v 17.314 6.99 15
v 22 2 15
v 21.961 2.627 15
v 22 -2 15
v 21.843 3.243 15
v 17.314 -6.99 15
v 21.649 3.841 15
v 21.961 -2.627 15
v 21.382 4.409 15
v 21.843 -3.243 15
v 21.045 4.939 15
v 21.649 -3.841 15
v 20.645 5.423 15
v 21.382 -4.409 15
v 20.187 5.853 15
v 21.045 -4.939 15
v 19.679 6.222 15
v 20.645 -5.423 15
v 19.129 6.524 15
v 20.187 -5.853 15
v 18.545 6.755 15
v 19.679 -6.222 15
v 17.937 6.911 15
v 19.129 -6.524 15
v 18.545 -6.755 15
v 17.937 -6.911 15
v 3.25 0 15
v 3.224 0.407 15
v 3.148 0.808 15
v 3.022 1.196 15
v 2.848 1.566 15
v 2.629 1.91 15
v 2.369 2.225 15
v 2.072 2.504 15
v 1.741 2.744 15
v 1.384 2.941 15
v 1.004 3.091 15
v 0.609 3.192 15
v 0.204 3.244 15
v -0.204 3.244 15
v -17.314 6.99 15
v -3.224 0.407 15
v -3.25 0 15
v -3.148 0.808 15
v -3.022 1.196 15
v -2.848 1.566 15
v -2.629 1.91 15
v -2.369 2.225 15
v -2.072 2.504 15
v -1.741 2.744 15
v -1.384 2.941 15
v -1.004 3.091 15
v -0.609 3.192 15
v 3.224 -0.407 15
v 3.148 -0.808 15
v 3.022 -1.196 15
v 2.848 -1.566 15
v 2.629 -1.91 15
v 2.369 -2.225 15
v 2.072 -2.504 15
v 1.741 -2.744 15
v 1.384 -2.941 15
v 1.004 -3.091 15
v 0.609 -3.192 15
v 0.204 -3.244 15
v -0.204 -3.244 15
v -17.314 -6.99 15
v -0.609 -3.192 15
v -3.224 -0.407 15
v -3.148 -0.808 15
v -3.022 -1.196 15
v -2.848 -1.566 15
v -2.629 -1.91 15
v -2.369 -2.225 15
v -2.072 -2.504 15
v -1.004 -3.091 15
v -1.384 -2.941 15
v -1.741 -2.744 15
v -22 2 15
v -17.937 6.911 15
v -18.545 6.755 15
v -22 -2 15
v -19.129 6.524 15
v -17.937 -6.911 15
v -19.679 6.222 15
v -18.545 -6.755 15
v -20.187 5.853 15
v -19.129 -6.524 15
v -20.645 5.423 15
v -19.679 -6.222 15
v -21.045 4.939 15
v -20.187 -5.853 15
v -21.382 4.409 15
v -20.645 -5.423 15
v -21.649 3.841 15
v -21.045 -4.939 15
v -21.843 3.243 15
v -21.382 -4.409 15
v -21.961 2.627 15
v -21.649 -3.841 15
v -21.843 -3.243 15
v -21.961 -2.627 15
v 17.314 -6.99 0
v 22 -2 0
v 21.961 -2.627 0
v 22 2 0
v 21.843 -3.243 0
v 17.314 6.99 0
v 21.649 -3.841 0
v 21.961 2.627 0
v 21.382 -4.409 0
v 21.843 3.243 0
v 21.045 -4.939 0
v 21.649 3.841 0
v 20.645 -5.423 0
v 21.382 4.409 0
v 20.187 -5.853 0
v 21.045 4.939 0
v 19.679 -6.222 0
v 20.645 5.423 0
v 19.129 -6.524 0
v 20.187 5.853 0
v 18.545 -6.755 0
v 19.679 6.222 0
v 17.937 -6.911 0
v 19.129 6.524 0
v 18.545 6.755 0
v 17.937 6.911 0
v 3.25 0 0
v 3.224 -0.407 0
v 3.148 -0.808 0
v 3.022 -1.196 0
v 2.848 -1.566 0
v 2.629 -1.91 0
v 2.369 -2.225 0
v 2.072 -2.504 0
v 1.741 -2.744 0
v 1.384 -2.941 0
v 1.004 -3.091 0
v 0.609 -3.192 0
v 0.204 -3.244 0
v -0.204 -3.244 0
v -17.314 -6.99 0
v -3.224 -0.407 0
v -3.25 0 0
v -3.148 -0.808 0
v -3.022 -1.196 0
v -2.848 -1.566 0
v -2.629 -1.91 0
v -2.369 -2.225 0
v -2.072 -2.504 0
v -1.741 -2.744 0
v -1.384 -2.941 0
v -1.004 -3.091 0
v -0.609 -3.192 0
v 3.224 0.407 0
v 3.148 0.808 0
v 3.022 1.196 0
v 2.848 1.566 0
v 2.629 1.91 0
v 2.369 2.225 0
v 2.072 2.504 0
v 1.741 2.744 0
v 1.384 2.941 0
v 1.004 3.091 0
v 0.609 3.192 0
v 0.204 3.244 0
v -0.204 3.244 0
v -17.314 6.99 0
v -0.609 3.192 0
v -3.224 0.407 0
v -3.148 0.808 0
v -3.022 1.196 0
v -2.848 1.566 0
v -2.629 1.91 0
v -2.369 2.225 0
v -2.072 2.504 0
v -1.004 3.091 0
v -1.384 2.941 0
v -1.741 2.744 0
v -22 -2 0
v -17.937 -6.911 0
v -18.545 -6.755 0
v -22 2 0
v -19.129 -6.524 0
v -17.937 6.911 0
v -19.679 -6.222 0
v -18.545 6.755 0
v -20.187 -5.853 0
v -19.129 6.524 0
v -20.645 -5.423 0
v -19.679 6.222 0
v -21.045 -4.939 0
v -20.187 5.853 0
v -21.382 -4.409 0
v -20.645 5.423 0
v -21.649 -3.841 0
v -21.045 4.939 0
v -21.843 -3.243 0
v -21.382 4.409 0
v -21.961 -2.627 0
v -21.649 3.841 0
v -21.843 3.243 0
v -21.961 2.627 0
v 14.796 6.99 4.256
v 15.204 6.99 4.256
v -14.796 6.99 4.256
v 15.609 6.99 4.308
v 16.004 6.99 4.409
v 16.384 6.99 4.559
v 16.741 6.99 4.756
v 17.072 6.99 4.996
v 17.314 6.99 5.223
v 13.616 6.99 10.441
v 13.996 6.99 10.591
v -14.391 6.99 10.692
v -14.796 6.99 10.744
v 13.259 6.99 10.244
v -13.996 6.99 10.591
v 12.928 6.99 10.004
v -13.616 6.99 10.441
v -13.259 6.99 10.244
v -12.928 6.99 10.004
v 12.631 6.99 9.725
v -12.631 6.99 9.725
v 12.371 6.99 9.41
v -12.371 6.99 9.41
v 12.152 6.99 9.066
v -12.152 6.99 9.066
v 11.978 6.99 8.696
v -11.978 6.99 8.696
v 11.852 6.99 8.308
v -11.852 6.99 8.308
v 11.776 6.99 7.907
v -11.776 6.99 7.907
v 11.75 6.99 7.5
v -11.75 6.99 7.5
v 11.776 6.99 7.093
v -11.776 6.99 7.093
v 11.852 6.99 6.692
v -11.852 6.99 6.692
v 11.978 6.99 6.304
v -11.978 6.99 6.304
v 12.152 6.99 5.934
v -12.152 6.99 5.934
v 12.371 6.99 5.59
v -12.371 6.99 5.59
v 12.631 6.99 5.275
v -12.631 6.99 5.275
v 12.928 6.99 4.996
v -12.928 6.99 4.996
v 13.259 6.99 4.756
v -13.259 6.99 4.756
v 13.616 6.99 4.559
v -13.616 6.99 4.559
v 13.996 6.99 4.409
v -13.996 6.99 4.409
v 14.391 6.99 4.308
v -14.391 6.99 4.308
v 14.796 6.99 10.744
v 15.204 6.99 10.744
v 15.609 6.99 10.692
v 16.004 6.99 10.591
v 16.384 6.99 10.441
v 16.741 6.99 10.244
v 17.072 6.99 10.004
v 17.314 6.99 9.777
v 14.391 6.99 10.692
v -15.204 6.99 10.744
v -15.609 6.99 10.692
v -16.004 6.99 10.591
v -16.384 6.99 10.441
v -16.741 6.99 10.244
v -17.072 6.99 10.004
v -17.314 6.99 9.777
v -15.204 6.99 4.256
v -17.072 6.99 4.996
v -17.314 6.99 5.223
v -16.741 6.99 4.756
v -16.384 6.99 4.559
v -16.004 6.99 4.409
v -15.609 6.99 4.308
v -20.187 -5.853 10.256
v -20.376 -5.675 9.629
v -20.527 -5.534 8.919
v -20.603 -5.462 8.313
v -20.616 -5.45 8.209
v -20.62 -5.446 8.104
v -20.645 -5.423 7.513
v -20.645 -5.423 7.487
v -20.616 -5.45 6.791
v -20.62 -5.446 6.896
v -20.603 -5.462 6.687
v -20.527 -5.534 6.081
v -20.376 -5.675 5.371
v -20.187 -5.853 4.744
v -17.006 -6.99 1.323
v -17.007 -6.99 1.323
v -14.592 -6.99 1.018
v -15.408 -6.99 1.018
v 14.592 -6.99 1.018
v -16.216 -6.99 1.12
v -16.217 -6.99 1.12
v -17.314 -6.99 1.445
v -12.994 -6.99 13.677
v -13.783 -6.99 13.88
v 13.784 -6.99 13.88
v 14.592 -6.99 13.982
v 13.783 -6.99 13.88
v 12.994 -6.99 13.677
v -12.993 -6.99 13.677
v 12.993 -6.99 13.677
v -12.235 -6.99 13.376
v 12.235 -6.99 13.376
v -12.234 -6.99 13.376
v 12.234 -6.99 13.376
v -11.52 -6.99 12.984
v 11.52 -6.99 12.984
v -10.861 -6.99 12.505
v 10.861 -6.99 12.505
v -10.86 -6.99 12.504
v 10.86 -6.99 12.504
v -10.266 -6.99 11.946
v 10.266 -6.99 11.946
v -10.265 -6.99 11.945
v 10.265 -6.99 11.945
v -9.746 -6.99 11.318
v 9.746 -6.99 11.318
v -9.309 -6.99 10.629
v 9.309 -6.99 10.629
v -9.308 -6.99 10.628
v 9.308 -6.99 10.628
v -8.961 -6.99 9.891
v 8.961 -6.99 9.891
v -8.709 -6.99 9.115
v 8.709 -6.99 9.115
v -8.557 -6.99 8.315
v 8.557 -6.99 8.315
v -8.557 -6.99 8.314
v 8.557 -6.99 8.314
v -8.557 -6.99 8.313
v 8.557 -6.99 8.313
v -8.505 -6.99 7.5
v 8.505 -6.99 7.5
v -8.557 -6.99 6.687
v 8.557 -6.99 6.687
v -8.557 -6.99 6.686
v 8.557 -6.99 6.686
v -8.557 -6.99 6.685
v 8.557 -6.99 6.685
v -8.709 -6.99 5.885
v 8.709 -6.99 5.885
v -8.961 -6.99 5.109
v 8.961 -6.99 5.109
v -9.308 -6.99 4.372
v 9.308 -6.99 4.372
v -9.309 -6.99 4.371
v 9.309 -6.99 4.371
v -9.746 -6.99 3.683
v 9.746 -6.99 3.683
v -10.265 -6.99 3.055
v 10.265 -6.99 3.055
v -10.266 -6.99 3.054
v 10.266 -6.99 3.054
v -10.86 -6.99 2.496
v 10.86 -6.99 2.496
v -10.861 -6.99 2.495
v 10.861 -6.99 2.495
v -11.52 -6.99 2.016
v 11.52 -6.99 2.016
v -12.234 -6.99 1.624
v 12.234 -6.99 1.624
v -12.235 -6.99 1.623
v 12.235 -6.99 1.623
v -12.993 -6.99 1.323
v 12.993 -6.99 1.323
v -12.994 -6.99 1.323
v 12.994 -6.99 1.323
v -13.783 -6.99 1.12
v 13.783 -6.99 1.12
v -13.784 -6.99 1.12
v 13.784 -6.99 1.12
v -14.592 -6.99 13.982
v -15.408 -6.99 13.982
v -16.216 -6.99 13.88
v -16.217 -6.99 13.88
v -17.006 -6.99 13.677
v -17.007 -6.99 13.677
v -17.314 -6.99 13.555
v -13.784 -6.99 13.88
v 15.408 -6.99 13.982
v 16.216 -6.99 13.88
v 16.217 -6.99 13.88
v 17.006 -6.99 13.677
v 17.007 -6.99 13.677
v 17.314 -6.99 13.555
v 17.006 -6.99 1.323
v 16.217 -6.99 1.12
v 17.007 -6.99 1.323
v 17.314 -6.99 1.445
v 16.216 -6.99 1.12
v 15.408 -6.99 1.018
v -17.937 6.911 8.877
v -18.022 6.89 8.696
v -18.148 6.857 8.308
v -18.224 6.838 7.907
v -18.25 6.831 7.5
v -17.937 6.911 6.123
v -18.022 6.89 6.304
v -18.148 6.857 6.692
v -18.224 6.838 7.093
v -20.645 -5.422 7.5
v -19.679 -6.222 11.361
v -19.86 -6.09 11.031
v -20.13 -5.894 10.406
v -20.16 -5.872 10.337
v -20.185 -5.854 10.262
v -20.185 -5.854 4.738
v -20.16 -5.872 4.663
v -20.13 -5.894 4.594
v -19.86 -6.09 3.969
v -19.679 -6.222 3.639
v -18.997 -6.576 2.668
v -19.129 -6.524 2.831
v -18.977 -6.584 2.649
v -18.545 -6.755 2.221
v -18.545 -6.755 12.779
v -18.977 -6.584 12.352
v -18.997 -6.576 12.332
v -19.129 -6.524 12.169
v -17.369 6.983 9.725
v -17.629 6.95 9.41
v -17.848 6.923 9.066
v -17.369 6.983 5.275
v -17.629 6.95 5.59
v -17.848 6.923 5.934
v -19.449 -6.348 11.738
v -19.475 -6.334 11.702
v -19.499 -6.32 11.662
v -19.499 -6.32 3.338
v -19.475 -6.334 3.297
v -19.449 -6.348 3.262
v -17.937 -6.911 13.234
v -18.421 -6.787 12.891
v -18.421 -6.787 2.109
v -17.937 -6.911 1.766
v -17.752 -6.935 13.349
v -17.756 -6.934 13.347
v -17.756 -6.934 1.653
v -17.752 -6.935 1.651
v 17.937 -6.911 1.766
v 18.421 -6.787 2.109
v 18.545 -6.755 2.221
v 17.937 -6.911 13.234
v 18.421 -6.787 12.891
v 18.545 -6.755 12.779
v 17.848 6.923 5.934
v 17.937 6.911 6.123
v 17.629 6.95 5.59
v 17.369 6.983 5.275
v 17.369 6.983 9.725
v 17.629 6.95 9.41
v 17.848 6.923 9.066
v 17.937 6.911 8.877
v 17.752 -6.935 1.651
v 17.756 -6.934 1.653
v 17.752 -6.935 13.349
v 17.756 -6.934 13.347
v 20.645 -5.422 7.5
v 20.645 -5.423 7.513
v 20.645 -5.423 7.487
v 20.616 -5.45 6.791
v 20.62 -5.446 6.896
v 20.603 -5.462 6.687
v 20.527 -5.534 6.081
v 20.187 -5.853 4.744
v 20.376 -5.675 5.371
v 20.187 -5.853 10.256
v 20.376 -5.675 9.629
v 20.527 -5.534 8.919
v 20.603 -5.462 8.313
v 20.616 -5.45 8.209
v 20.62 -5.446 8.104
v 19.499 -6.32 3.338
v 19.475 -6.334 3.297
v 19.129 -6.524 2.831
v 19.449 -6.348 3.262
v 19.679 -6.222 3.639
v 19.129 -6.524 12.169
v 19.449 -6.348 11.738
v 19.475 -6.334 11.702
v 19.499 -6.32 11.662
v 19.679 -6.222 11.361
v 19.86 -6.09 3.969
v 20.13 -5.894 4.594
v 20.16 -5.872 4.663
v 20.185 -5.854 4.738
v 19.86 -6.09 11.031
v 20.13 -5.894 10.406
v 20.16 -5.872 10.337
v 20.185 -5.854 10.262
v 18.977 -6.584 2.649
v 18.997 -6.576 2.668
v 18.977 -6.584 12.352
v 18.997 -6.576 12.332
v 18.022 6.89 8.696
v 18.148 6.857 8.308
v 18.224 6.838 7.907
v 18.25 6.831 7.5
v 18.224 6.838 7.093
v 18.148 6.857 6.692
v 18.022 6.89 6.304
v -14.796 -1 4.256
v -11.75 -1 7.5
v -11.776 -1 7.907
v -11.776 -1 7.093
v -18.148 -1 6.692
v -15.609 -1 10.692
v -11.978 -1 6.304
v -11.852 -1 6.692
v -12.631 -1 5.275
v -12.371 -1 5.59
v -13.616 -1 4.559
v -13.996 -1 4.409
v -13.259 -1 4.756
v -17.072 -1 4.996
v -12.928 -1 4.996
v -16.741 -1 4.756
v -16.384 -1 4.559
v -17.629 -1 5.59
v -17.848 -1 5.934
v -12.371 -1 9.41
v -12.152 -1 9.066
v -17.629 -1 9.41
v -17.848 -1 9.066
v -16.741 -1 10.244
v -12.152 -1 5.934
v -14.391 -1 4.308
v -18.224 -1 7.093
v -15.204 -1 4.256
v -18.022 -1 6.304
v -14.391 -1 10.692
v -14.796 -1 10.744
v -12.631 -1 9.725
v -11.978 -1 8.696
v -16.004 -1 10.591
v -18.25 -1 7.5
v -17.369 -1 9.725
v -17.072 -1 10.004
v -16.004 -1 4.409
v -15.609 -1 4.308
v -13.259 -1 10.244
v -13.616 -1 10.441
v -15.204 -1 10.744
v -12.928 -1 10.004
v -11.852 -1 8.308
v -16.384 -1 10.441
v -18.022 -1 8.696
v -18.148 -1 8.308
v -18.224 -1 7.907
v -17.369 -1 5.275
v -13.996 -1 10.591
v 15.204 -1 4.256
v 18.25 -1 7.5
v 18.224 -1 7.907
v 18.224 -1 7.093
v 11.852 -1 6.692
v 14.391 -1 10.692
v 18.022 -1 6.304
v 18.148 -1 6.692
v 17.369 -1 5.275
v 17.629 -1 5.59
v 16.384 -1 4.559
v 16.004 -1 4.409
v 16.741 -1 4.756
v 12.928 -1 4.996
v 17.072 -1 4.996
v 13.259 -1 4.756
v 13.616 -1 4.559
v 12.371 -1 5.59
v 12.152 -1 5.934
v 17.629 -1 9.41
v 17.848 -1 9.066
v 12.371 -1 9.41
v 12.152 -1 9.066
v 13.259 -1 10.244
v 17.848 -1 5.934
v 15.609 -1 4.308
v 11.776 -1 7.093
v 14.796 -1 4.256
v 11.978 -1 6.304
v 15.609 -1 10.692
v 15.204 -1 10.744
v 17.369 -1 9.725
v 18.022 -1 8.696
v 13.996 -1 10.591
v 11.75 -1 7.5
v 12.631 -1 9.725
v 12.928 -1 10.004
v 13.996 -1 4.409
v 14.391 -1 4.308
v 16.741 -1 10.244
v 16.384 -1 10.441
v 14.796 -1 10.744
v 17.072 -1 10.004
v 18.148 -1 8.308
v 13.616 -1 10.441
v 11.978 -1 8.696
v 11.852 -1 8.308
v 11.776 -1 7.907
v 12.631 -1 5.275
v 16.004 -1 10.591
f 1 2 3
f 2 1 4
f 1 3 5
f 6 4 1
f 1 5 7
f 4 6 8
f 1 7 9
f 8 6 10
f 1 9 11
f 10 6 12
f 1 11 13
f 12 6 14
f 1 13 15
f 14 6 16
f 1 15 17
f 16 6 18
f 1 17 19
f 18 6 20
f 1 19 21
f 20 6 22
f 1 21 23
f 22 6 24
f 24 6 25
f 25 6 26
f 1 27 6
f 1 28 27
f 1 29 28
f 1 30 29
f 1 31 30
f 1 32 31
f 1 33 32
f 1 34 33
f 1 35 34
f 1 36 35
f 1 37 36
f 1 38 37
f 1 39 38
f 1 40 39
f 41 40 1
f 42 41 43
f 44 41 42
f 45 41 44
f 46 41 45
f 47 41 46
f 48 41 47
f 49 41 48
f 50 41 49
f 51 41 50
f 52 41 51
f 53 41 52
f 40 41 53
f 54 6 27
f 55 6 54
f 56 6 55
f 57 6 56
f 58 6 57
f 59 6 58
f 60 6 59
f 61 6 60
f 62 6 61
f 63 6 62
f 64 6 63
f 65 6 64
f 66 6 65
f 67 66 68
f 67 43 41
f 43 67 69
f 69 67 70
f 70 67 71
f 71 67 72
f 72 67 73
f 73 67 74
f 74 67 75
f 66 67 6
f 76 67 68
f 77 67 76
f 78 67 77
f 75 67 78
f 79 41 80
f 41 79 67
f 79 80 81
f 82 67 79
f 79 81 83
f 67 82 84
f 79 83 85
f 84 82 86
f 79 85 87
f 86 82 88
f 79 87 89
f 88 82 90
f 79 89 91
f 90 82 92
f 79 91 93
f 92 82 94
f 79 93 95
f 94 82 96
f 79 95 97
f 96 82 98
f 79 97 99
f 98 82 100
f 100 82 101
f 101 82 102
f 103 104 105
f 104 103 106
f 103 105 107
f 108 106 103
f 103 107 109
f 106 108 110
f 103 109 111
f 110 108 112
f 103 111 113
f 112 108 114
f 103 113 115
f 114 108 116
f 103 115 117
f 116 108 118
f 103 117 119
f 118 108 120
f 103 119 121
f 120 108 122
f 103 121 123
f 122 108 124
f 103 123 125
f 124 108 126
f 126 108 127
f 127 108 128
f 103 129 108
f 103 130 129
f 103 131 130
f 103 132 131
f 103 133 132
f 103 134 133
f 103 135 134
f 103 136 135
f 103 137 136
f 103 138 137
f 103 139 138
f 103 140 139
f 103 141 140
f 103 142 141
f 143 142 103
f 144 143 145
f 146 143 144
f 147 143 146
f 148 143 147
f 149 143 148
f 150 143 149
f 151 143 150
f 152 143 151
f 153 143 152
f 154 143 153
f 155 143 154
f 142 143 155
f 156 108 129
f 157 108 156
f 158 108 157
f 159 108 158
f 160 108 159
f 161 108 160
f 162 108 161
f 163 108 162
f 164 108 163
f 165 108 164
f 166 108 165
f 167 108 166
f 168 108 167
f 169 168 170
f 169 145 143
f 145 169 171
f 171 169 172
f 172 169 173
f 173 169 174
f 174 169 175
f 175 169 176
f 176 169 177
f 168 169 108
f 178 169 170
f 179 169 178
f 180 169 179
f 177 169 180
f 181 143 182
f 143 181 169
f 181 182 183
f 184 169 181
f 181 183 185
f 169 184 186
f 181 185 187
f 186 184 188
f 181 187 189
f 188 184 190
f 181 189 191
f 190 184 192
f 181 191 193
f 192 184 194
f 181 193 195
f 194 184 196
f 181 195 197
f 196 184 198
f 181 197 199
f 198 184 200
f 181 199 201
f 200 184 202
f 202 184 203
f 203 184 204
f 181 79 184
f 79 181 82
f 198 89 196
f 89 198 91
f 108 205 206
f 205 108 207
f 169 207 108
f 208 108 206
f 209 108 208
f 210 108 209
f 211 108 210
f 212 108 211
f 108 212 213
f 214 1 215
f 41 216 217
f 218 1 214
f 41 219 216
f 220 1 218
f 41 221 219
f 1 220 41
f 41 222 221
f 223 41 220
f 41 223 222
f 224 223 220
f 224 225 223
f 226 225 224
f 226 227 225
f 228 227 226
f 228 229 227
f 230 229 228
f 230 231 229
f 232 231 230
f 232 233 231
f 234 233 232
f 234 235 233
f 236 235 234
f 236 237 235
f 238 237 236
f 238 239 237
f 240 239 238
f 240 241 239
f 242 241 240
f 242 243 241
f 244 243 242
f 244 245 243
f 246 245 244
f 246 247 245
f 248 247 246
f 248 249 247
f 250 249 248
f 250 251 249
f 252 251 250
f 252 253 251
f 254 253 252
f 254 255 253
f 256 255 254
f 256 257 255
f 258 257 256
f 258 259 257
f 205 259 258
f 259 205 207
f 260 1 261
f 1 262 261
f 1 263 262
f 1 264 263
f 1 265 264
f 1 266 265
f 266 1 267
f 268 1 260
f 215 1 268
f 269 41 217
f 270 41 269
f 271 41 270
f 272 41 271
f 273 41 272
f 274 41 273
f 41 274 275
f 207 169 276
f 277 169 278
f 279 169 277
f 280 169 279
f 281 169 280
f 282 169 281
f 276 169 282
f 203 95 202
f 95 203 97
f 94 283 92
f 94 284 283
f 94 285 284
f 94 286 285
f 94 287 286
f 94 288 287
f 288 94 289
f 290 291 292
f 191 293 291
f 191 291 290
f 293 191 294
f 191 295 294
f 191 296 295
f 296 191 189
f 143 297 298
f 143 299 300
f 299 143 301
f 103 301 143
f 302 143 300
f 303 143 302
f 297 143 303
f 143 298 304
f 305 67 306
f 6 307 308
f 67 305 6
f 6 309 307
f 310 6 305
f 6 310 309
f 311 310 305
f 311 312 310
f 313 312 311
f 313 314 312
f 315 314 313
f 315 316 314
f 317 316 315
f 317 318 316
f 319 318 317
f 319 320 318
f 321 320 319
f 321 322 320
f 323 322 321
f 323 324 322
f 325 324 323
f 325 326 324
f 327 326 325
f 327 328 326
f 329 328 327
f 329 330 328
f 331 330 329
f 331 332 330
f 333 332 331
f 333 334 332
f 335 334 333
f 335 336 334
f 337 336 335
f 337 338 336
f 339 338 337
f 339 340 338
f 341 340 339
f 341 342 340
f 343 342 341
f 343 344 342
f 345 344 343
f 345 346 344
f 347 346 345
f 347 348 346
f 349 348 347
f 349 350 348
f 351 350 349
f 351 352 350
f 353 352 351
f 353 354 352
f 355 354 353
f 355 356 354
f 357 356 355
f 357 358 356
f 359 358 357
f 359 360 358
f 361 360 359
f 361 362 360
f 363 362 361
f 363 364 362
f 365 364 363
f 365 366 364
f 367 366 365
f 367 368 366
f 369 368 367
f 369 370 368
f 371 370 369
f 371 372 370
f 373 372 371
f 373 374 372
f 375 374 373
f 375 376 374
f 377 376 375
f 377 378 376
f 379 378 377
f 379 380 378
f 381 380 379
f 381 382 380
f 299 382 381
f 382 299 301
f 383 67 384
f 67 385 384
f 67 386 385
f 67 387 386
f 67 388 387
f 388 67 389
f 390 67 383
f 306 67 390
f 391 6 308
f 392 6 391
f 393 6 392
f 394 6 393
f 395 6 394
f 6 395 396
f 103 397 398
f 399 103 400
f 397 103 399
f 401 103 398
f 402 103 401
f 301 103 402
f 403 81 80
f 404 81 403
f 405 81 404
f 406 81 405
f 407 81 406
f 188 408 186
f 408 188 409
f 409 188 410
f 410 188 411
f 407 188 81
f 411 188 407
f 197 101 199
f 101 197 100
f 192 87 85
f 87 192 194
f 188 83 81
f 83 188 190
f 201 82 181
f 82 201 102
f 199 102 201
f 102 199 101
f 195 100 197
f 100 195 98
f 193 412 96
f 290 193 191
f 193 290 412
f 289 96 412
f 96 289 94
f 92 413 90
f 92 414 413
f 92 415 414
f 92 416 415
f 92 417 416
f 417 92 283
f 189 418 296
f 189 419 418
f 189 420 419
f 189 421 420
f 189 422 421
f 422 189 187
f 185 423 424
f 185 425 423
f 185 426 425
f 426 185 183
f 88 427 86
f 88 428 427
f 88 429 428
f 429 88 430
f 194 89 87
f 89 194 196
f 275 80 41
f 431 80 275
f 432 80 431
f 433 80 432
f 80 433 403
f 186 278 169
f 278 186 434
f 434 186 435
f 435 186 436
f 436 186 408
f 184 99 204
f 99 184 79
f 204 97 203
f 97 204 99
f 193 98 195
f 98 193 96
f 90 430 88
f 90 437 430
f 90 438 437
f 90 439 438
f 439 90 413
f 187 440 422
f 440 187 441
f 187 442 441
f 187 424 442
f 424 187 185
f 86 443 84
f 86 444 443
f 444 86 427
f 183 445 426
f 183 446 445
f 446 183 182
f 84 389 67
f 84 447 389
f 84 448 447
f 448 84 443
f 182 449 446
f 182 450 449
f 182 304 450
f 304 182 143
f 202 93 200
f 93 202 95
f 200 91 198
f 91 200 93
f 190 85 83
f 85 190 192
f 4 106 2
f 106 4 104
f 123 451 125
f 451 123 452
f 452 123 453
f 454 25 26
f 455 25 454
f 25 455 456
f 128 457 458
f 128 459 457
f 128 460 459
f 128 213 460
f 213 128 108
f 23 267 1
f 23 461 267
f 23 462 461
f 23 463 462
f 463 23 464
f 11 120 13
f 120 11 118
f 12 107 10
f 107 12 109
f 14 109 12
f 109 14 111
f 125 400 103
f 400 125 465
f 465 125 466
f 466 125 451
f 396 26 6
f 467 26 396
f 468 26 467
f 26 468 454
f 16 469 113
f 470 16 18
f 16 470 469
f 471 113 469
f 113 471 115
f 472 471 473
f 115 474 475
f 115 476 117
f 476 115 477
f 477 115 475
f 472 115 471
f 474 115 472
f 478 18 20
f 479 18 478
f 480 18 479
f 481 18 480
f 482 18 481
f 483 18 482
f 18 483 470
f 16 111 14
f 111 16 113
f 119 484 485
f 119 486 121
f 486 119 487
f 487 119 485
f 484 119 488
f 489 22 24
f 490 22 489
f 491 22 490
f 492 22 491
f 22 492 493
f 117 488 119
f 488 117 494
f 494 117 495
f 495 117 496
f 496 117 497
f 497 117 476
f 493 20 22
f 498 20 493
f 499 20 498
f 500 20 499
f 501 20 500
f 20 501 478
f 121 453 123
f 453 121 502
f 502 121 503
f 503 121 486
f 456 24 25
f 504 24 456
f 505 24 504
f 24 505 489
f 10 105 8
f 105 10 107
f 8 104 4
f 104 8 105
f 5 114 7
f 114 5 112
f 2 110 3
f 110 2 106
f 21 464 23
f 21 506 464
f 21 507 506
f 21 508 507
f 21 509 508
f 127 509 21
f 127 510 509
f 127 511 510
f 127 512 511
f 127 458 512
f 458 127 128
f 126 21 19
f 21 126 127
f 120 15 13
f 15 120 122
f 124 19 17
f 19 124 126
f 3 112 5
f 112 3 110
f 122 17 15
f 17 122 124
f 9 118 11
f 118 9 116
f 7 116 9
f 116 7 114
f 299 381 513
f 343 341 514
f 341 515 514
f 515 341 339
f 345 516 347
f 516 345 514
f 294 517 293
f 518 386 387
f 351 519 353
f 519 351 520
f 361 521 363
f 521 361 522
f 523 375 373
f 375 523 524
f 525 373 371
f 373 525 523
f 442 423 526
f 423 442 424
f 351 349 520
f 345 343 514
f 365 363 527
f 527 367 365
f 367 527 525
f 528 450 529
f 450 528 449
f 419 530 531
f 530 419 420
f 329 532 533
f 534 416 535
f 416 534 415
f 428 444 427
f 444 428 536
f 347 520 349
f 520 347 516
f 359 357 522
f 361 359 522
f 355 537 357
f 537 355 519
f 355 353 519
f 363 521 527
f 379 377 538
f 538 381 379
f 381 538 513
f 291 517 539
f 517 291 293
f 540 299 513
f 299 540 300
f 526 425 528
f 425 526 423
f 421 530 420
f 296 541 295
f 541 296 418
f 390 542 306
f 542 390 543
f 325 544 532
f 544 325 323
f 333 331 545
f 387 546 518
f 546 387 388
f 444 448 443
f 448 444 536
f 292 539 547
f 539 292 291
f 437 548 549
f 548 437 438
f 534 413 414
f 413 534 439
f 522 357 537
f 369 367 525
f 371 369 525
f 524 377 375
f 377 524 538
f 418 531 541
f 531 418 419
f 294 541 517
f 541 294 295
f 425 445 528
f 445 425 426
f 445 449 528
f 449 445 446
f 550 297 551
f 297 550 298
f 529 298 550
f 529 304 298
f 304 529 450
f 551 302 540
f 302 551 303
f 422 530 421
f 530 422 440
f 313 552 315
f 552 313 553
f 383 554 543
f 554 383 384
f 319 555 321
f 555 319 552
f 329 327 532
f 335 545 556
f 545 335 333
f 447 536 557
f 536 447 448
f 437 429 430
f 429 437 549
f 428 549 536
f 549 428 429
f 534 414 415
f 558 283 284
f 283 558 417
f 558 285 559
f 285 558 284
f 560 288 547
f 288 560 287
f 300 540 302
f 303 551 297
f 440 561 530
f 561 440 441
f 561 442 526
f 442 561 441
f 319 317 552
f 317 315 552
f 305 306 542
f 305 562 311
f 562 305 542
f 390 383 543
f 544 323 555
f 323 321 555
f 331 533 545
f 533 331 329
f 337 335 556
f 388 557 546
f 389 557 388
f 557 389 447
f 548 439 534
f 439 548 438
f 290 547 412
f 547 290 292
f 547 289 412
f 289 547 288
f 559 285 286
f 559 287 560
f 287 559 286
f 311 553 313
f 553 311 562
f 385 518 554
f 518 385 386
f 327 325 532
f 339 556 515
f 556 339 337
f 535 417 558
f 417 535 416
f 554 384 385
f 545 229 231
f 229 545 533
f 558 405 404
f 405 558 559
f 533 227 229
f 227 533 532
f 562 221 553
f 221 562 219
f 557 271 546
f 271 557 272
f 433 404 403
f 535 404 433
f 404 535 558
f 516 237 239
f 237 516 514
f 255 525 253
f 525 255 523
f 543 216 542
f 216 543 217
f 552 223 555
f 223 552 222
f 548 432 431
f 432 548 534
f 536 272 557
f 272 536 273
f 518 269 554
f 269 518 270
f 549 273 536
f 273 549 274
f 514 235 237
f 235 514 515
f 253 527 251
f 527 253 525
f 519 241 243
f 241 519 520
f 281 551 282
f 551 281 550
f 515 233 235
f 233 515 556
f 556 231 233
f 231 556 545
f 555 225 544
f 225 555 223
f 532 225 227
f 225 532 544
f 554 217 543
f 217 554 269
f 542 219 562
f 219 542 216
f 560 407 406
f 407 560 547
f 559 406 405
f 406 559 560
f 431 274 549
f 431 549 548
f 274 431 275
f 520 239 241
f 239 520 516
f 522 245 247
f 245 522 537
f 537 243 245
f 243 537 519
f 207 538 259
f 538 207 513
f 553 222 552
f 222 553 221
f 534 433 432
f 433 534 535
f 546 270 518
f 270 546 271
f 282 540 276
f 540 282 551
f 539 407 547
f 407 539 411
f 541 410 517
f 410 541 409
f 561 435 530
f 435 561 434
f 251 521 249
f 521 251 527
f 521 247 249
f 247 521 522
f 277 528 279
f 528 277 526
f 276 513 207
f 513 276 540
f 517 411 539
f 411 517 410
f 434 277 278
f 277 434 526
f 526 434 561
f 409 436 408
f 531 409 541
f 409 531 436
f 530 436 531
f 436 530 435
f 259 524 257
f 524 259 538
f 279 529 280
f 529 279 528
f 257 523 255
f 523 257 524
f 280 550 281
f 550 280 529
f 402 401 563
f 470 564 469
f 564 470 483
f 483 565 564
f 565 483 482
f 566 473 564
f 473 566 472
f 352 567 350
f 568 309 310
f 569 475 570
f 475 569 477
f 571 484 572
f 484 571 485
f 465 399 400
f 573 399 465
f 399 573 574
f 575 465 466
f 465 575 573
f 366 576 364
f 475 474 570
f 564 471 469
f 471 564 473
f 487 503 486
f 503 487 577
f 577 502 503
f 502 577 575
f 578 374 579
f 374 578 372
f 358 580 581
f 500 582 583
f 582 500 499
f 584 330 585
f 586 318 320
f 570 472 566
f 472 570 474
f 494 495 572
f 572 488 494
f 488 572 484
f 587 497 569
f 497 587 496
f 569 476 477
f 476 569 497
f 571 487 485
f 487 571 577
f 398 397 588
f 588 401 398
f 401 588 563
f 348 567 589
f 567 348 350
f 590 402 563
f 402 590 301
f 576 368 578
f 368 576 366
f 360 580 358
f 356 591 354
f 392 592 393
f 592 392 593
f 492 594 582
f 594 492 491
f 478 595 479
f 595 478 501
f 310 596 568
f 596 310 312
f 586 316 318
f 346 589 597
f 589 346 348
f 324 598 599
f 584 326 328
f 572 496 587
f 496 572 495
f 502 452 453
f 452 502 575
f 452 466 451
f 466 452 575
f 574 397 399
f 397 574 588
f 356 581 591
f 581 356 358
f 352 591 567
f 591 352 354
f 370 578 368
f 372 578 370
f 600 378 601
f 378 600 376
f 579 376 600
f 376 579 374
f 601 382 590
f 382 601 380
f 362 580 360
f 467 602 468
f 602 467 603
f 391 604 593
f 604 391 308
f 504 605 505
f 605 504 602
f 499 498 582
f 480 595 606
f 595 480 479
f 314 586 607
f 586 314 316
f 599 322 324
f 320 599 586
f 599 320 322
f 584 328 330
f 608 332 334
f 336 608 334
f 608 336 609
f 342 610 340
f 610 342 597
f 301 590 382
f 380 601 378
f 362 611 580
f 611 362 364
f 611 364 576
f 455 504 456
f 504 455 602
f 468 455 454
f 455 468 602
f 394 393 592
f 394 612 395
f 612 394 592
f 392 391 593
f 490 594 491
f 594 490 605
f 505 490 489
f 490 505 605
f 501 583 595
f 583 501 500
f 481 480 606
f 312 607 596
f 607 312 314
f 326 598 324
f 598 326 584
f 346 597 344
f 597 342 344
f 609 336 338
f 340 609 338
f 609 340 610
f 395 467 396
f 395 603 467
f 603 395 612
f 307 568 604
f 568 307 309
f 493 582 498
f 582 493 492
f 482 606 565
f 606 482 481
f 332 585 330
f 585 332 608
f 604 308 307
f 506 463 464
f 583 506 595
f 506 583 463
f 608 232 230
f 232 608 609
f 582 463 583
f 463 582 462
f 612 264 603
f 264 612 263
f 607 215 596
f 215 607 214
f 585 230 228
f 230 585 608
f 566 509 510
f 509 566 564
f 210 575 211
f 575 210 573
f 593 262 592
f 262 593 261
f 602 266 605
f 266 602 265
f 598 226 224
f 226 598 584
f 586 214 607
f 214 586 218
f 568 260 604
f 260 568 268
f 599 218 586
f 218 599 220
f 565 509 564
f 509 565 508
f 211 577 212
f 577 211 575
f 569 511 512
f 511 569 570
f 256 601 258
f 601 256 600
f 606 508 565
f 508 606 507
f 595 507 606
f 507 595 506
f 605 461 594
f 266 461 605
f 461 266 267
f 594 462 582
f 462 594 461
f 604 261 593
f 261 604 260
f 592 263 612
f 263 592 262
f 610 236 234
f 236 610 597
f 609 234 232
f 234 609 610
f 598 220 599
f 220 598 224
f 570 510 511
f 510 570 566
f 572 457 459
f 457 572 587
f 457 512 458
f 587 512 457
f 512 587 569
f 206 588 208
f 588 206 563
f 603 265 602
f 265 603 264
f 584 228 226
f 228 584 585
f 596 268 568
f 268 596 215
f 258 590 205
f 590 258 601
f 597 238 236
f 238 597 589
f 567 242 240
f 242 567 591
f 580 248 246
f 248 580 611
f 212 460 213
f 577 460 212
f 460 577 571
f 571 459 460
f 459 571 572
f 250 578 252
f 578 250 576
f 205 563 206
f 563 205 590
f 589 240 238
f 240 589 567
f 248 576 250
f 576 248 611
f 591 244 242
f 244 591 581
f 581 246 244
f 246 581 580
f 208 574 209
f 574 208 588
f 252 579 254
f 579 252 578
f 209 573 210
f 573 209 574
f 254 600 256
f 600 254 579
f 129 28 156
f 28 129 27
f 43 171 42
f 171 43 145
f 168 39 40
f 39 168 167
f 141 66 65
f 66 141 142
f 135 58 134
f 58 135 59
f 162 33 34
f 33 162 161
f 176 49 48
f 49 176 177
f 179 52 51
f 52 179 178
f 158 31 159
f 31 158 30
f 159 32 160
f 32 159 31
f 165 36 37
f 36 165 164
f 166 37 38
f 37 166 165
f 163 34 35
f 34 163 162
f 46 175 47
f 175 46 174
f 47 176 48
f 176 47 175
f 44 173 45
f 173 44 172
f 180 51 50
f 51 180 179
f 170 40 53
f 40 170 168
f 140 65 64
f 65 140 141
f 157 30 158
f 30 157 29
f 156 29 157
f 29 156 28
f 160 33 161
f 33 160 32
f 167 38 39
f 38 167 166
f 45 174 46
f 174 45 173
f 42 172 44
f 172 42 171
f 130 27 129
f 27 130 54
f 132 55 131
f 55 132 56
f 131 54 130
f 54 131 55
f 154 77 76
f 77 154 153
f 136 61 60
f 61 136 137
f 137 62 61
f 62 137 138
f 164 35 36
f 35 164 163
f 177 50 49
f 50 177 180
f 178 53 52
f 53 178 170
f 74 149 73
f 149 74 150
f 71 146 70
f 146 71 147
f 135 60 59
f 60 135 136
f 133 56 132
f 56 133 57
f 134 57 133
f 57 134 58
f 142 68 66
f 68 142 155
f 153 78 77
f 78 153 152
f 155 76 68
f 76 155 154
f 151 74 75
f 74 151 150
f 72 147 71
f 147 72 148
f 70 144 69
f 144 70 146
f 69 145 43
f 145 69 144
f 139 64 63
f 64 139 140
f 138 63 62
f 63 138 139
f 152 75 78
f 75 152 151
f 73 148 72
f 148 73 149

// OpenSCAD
$fn = 50;


difference() {
	union() {
		cylinder(h = 15, r = 7.0000000000);
		translate(v = [-7.5000000000, 0.0000000000, 0]) {
			hull() {
				translate(v = [-9.5000000000, 2.0000000000, 0]) {
					cylinder(h = 15, r = 5);
				}
				translate(v = [9.5000000000, 2.0000000000, 0]) {
					cylinder(h = 15, r = 5);
				}
				translate(v = [-9.5000000000, -2.0000000000, 0]) {
					cylinder(h = 15, r = 5);
				}
				translate(v = [9.5000000000, -2.0000000000, 0]) {
					cylinder(h = 15, r = 5);
				}
			}
		}
		translate(v = [-7.5000000000, 0.0000000000, 0]) {
			hull() {
				translate(v = [-9.5000000000, 2.0000000000, 0]) {
					cylinder(h = 15, r = 5);
				}
				translate(v = [9.5000000000, 2.0000000000, 0]) {
					cylinder(h = 15, r = 5);
				}
				translate(v = [-9.5000000000, -2.0000000000, 0]) {
					cylinder(h = 15, r = 5);
				}
				translate(v = [9.5000000000, -2.0000000000, 0]) {
					cylinder(h = 15, r = 5);
				}
			}
		}
		translate(v = [7.5000000000, 0.0000000000, 0]) {
			hull() {
				translate(v = [-9.5000000000, 2.0000000000, 0]) {
					cylinder(h = 15, r = 5);
				}
				translate(v = [9.5000000000, 2.0000000000, 0]) {
					cylinder(h = 15, r = 5);
				}
				translate(v = [-9.5000000000, -2.0000000000, 0]) {
					cylinder(h = 15, r = 5);
				}
				translate(v = [9.5000000000, -2.0000000000, 0]) {
					cylinder(h = 15, r = 5);
				}
			}
		}
		translate(v = [7.5000000000, 0.0000000000, 0]) {
			hull() {
				translate(v = [-9.5000000000, 2.0000000000, 0]) {
					cylinder(h = 15, r = 5);
				}
				translate(v = [9.5000000000, 2.0000000000, 0]) {
					cylinder(h = 15, r = 5);
				}
				translate(v = [-9.5000000000, -2.0000000000, 0]) {
					cylinder(h = 15, r = 5);
				}
				translate(v = [9.5000000000, -2.0000000000, 0]) {
					cylinder(h = 15, r = 5);
				}
			}
		}
	}
	union() {
		translate(v = [-15.0000000000, -7.0000000000, 7.5000000000]) {
			rotate(a = [90, 0, 0]) {
				difference() {
					union() {
						#translate(v = [0, 0, -14.0000000000]) {
							cylinder(h = 14, r = 2.2500000000);
						}
						#translate(v = [0, 0, -6]) {
							cylinder(h = 6, r1 = 3.2500000000, r2 = 6.5000000000);
						}
						#translate(v = [0, 0, -14.0000000000]) {
							cylinder(h = 14, r = 3.2500000000);
						}
						#translate(v = [0, 0, -14.0000000000]) {
							cylinder(h = 14, r = 2.2500000000);
						}
					}
					union();
				}
			}
		}
		translate(v = [15.0000000000, -7.0000000000, 7.5000000000]) {
			rotate(a = [90, 0, 0]) {
				difference() {
					union() {
						#translate(v = [0, 0, -14.0000000000]) {
							cylinder(h = 14, r = 2.2500000000);
						}
						#translate(v = [0, 0, -6]) {
							cylinder(h = 6, r1 = 3.2500000000, r2 = 6.5000000000);
						}
						#translate(v = [0, 0, -14.0000000000]) {
							cylinder(h = 14, r = 3.2500000000);
						}
						#translate(v = [0, 0, -14.0000000000]) {
							cylinder(h = 14, r = 2.2500000000);
						}
					}
					union();
				}
			}
		}
		translate(v = [0, 0, -100]) {
			cylinder(h = 200, r = 3.2500000000);
		}
		translate(v = [0, 0, -100]) {
			cylinder(h = 200, r = 1.8000000000);
		}
	}
}
